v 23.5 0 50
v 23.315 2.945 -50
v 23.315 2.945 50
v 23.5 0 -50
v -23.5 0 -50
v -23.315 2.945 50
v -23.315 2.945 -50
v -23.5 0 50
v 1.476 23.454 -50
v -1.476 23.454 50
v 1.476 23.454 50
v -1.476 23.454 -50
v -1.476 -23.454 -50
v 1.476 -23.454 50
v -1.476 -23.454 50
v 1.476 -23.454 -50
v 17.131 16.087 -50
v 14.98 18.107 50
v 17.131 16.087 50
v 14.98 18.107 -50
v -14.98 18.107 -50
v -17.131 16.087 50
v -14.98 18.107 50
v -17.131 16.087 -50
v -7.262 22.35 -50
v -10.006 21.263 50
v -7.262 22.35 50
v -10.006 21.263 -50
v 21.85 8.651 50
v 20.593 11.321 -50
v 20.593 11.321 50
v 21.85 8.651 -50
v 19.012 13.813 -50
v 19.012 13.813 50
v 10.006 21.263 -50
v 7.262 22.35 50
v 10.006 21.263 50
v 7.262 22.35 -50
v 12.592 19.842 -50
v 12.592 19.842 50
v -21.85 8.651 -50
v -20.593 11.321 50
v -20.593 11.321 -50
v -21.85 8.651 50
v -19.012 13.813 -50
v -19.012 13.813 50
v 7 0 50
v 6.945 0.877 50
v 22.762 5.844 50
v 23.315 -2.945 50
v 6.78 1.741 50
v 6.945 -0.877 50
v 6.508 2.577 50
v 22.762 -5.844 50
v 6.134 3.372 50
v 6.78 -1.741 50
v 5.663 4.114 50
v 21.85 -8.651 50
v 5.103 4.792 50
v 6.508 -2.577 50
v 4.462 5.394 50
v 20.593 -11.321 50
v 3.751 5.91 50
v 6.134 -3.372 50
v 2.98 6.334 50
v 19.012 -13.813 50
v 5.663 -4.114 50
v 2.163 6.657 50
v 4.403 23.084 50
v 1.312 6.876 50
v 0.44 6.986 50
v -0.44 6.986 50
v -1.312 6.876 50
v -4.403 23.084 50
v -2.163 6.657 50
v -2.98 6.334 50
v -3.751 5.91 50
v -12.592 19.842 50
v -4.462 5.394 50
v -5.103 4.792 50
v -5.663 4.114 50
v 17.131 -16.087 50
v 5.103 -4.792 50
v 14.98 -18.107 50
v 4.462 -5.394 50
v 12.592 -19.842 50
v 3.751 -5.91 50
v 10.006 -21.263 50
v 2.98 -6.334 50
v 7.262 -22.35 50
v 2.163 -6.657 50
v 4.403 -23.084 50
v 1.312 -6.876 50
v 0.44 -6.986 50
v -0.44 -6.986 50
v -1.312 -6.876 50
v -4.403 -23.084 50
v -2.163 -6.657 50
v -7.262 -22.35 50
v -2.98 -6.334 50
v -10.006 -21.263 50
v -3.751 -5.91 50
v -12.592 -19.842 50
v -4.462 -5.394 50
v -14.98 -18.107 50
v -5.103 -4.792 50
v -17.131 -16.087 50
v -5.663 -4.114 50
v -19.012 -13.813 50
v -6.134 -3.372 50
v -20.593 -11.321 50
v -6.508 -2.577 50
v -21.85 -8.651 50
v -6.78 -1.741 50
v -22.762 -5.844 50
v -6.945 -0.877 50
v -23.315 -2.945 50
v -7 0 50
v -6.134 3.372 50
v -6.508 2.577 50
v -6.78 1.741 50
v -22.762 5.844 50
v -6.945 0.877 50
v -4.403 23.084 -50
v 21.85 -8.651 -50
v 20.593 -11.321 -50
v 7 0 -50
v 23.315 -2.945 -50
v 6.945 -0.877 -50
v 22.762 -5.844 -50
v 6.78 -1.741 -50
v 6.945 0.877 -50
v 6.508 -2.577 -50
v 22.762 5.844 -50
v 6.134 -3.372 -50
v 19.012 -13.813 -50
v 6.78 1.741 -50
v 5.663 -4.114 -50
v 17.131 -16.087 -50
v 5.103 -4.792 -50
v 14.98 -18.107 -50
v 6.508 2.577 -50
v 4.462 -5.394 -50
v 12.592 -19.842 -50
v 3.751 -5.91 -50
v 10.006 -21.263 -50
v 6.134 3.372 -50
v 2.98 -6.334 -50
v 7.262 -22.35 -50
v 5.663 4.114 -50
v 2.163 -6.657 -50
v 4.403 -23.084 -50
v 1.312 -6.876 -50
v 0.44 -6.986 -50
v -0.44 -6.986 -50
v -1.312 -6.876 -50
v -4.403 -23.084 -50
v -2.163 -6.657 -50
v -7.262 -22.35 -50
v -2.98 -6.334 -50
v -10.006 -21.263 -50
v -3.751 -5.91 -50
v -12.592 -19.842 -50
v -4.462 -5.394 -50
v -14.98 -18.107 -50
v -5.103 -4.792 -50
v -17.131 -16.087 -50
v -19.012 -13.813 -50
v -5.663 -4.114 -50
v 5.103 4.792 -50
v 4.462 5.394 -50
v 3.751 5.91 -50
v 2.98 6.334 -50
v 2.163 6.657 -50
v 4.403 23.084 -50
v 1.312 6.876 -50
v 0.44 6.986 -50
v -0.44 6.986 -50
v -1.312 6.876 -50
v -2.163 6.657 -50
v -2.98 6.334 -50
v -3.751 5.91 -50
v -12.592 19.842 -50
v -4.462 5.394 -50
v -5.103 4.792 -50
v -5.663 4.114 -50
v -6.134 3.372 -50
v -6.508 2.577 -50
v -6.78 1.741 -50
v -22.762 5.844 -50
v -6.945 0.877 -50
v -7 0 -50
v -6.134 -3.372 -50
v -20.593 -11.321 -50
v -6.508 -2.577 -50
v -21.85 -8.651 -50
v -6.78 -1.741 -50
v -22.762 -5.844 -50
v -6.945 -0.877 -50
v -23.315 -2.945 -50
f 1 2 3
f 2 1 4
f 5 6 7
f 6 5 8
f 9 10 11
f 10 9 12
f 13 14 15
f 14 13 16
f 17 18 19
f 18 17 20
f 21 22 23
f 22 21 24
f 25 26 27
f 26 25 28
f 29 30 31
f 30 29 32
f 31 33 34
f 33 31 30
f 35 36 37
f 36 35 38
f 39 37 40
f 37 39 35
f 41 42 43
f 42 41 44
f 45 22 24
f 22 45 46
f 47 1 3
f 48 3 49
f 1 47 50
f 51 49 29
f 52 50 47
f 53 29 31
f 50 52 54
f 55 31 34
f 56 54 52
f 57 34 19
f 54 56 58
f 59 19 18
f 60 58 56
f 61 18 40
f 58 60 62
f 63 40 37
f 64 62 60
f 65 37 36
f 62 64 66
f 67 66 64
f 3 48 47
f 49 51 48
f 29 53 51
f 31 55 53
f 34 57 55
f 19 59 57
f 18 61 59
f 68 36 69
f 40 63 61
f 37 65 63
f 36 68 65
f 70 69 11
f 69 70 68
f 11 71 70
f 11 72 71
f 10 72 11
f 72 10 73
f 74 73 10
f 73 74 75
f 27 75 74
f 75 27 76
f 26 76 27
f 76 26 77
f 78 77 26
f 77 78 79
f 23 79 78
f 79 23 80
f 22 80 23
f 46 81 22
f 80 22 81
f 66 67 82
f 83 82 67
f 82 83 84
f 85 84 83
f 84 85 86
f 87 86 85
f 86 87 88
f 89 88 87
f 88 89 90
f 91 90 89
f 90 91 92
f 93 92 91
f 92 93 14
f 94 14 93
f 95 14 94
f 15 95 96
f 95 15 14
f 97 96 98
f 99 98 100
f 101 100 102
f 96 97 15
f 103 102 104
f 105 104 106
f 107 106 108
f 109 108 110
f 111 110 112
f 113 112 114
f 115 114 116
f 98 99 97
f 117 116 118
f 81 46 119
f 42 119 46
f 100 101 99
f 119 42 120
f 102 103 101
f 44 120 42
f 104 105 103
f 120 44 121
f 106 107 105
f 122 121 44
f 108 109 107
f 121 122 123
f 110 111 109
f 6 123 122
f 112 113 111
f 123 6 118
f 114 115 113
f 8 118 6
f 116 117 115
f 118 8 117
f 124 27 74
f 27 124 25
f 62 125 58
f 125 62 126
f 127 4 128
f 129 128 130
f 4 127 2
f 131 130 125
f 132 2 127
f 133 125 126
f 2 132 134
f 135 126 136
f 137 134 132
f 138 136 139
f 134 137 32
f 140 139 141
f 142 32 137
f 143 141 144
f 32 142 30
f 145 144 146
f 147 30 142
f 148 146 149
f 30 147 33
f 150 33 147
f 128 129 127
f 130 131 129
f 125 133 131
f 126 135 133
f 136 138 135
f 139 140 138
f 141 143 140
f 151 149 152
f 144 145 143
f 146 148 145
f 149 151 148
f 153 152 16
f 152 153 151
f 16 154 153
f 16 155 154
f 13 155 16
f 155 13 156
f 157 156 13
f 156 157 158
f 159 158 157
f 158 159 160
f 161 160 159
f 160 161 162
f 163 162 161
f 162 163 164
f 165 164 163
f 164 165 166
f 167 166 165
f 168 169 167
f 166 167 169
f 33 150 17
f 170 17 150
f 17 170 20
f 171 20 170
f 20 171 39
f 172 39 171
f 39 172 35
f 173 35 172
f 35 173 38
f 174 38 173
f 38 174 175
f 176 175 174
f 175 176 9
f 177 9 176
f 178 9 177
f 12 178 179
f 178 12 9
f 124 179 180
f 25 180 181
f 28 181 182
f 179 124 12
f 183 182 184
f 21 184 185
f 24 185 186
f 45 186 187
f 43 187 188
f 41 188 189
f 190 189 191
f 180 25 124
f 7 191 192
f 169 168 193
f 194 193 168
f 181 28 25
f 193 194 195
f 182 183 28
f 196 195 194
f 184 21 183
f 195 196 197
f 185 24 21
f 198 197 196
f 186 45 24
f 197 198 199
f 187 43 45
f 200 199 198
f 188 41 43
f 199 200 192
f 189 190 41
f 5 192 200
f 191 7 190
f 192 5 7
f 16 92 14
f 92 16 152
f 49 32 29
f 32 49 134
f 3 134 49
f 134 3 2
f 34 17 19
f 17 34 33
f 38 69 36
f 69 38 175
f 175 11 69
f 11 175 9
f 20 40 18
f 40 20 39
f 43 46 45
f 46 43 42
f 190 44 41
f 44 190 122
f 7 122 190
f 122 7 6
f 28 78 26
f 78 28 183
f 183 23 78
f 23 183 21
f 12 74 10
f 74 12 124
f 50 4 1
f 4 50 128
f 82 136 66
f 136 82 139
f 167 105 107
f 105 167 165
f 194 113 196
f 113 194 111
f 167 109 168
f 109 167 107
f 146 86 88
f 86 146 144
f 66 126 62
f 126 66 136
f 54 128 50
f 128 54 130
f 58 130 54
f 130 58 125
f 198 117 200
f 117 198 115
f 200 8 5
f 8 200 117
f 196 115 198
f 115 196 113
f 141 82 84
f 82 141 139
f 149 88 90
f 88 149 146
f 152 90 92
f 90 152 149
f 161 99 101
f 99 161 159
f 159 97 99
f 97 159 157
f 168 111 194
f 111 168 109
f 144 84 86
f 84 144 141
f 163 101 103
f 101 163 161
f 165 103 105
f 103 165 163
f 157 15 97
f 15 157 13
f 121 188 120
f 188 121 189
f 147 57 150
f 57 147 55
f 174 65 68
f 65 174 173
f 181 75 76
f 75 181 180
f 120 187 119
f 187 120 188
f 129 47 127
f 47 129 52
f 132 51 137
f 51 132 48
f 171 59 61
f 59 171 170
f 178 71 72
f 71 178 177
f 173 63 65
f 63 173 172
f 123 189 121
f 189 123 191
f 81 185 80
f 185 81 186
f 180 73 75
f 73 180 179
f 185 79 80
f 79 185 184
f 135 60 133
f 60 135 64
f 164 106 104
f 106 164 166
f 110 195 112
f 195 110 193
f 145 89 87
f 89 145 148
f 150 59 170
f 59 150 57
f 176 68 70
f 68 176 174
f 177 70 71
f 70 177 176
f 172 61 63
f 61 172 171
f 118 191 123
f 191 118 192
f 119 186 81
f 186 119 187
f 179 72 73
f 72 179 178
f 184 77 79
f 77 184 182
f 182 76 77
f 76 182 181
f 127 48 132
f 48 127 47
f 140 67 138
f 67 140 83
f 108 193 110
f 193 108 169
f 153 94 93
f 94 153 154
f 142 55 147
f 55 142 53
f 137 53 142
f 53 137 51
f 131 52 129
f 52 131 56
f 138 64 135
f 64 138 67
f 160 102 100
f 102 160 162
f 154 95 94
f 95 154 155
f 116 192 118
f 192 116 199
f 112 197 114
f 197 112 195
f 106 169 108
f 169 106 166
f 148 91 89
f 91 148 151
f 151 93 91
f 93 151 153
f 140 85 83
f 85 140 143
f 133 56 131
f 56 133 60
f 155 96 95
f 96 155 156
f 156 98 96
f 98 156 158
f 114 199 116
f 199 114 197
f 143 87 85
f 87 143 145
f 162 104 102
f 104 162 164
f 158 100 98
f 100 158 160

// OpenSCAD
$fn = 50;


difference() {
	union() {
		translate(v = [0, 0, -50.0000000000]) {
			cylinder(h = 100, r = 23.5000000000);
		}
	}
	union() {
		translate(v = [0, 0, -100.0000000000]) {
			cylinder(h = 200, r = 7);
		}
	}
}
